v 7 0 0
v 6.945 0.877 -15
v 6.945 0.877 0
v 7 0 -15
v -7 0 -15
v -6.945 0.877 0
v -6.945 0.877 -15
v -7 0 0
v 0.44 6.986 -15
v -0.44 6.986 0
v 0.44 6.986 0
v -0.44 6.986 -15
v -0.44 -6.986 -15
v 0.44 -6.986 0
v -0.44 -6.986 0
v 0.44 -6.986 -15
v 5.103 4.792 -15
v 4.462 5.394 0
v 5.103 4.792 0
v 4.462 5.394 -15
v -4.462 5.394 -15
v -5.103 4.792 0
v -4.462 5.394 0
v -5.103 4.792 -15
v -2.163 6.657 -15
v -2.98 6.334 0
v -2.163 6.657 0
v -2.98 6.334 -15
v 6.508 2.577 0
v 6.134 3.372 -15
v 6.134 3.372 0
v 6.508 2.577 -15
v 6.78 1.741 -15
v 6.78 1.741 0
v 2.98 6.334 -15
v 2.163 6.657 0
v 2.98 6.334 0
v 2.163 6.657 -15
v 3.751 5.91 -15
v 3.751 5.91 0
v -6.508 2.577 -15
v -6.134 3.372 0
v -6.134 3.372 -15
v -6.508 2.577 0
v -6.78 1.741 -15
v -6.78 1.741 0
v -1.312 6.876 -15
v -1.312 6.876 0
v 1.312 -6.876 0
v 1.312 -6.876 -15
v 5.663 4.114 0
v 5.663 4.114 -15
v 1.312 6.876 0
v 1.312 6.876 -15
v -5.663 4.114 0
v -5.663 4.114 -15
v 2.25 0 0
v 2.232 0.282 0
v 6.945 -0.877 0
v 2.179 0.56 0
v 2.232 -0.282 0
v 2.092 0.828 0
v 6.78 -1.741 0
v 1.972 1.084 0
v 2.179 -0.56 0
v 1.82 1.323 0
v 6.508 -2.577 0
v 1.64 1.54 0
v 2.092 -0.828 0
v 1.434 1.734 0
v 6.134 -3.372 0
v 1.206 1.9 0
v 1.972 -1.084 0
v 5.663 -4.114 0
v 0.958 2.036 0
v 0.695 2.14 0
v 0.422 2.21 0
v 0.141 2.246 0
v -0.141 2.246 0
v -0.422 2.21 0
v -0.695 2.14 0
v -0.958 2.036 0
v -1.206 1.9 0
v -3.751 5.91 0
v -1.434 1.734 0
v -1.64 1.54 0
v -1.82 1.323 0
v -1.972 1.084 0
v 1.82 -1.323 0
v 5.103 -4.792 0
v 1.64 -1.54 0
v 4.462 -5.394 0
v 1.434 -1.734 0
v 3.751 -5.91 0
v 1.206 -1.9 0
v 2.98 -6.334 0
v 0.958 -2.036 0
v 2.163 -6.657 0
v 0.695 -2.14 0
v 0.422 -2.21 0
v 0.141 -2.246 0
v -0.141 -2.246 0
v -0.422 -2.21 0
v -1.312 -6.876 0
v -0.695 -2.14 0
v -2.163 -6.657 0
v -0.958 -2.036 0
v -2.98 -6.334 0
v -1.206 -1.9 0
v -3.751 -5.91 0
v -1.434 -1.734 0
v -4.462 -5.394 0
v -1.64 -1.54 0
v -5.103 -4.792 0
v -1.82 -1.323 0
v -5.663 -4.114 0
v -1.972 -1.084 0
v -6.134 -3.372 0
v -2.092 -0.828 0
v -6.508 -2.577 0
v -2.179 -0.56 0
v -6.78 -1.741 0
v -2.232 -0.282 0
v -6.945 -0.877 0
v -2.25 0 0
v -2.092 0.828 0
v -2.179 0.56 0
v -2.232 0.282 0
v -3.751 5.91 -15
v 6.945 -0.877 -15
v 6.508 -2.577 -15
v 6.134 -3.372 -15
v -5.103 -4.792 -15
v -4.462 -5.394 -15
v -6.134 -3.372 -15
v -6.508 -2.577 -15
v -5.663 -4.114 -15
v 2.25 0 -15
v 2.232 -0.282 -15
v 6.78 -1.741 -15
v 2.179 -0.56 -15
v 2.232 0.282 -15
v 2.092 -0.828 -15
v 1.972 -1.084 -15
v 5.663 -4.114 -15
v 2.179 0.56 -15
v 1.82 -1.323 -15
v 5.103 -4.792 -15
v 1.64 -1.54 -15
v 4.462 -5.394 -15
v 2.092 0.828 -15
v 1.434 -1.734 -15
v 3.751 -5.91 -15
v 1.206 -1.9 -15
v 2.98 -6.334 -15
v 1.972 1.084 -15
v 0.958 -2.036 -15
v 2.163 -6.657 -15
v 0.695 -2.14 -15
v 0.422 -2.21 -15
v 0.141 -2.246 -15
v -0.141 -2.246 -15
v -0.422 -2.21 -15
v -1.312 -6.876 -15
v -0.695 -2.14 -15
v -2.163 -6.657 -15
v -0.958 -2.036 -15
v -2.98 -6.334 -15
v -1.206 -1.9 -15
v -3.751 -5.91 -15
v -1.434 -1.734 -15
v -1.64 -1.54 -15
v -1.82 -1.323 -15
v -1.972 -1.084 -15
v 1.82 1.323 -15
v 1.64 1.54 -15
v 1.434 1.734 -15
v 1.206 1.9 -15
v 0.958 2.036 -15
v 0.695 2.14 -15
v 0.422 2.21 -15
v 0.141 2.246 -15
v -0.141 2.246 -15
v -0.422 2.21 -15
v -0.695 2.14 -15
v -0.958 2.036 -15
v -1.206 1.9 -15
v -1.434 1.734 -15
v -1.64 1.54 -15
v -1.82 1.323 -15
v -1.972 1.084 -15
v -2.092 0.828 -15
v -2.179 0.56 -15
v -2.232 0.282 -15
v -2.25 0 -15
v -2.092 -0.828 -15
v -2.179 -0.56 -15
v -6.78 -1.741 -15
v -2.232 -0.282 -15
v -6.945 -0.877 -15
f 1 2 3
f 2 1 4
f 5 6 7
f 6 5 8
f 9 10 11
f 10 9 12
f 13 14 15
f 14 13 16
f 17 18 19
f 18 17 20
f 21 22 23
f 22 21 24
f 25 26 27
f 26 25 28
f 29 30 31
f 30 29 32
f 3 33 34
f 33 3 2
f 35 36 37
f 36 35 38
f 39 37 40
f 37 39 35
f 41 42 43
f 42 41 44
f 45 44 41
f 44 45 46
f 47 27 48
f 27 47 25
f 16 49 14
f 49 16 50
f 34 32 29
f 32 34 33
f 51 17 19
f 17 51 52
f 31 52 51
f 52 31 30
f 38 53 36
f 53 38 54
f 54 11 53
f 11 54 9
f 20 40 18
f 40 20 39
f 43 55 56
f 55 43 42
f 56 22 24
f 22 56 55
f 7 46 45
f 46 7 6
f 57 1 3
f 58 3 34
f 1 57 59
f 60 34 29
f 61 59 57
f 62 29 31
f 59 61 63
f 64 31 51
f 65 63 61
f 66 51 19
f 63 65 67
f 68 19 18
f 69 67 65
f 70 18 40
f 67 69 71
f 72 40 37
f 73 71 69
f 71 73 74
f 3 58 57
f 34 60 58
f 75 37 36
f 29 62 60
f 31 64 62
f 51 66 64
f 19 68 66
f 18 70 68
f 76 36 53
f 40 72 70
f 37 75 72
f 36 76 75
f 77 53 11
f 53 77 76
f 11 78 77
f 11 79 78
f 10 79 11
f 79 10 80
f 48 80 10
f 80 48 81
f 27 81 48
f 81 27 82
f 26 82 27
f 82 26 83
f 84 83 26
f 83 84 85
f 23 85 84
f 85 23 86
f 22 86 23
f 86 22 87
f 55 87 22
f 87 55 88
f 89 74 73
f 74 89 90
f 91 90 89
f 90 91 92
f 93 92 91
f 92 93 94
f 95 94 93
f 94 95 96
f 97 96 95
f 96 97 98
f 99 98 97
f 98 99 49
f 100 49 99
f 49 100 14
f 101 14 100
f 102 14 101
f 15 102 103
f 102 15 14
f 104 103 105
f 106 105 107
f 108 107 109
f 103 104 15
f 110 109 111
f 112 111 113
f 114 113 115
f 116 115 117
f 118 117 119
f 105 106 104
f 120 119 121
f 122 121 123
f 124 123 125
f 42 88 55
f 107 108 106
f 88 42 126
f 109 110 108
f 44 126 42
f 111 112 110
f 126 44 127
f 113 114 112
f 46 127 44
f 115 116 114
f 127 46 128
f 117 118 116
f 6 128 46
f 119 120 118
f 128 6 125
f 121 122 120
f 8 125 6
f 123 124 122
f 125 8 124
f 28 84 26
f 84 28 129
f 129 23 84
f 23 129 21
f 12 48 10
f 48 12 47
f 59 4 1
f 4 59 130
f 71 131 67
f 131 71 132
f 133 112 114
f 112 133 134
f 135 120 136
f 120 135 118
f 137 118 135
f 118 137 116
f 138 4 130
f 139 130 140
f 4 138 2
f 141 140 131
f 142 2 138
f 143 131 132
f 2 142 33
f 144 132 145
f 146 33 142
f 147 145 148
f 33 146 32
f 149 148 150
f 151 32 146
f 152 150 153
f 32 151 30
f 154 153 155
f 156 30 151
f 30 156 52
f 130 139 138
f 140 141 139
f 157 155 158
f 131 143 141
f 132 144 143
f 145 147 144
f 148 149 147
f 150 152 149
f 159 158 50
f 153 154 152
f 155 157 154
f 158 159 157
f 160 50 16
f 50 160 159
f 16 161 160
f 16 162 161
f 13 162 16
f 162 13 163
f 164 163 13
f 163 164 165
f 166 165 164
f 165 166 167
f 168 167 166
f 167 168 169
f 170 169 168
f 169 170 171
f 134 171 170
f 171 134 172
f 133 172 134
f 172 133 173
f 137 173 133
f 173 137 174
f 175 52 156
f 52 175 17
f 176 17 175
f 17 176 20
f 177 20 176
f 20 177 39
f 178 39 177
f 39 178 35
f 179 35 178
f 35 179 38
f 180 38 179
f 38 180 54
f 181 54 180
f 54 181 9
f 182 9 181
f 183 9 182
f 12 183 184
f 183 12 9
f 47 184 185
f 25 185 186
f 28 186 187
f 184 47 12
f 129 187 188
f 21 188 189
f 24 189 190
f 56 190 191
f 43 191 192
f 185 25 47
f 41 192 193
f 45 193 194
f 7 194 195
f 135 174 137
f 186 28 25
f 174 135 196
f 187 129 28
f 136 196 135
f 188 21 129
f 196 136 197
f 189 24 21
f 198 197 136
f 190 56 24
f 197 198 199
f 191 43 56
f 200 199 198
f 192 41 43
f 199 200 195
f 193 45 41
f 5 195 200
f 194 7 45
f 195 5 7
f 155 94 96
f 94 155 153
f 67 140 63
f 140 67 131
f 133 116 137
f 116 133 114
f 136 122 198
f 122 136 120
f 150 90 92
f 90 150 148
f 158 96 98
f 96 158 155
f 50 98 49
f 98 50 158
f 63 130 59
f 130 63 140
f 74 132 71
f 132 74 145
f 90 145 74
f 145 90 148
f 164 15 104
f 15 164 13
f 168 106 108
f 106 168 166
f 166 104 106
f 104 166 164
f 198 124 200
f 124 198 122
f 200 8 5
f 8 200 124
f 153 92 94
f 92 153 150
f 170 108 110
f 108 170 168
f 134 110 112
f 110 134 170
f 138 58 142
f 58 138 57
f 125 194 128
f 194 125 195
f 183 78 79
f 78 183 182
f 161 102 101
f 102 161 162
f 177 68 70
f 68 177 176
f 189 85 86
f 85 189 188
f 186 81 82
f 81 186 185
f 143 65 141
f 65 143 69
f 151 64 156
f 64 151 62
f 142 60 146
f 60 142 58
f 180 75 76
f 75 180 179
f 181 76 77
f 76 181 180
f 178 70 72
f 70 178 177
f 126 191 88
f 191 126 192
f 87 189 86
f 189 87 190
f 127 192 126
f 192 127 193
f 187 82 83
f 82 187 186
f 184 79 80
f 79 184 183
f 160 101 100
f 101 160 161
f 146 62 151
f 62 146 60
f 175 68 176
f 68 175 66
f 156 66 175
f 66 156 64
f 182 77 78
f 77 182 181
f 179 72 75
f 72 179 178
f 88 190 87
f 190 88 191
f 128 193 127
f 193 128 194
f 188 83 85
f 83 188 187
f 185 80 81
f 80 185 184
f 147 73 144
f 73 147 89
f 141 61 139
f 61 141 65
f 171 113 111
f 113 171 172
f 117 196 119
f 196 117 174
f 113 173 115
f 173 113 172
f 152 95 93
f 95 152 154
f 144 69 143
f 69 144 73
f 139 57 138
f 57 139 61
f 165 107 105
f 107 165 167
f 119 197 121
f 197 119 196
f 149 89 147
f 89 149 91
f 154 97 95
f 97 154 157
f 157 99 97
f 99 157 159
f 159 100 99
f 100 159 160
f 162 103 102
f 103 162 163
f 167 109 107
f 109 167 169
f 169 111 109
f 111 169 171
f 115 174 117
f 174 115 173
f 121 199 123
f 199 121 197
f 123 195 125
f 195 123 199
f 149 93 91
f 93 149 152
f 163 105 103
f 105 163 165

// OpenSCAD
$fn = 50;


difference() {
	union() {
		translate(v = [0, 0, -15.0000000000]) {
			cylinder(h = 15, r = 7.0000000000);
		}
		cylinder(h = 0, r = 10.0000000000);
	}
	union() {
		#translate(v = [0, 0, -15]) {
			cylinder(h = 15, r = 2.2500000000);
		}
	}
}
